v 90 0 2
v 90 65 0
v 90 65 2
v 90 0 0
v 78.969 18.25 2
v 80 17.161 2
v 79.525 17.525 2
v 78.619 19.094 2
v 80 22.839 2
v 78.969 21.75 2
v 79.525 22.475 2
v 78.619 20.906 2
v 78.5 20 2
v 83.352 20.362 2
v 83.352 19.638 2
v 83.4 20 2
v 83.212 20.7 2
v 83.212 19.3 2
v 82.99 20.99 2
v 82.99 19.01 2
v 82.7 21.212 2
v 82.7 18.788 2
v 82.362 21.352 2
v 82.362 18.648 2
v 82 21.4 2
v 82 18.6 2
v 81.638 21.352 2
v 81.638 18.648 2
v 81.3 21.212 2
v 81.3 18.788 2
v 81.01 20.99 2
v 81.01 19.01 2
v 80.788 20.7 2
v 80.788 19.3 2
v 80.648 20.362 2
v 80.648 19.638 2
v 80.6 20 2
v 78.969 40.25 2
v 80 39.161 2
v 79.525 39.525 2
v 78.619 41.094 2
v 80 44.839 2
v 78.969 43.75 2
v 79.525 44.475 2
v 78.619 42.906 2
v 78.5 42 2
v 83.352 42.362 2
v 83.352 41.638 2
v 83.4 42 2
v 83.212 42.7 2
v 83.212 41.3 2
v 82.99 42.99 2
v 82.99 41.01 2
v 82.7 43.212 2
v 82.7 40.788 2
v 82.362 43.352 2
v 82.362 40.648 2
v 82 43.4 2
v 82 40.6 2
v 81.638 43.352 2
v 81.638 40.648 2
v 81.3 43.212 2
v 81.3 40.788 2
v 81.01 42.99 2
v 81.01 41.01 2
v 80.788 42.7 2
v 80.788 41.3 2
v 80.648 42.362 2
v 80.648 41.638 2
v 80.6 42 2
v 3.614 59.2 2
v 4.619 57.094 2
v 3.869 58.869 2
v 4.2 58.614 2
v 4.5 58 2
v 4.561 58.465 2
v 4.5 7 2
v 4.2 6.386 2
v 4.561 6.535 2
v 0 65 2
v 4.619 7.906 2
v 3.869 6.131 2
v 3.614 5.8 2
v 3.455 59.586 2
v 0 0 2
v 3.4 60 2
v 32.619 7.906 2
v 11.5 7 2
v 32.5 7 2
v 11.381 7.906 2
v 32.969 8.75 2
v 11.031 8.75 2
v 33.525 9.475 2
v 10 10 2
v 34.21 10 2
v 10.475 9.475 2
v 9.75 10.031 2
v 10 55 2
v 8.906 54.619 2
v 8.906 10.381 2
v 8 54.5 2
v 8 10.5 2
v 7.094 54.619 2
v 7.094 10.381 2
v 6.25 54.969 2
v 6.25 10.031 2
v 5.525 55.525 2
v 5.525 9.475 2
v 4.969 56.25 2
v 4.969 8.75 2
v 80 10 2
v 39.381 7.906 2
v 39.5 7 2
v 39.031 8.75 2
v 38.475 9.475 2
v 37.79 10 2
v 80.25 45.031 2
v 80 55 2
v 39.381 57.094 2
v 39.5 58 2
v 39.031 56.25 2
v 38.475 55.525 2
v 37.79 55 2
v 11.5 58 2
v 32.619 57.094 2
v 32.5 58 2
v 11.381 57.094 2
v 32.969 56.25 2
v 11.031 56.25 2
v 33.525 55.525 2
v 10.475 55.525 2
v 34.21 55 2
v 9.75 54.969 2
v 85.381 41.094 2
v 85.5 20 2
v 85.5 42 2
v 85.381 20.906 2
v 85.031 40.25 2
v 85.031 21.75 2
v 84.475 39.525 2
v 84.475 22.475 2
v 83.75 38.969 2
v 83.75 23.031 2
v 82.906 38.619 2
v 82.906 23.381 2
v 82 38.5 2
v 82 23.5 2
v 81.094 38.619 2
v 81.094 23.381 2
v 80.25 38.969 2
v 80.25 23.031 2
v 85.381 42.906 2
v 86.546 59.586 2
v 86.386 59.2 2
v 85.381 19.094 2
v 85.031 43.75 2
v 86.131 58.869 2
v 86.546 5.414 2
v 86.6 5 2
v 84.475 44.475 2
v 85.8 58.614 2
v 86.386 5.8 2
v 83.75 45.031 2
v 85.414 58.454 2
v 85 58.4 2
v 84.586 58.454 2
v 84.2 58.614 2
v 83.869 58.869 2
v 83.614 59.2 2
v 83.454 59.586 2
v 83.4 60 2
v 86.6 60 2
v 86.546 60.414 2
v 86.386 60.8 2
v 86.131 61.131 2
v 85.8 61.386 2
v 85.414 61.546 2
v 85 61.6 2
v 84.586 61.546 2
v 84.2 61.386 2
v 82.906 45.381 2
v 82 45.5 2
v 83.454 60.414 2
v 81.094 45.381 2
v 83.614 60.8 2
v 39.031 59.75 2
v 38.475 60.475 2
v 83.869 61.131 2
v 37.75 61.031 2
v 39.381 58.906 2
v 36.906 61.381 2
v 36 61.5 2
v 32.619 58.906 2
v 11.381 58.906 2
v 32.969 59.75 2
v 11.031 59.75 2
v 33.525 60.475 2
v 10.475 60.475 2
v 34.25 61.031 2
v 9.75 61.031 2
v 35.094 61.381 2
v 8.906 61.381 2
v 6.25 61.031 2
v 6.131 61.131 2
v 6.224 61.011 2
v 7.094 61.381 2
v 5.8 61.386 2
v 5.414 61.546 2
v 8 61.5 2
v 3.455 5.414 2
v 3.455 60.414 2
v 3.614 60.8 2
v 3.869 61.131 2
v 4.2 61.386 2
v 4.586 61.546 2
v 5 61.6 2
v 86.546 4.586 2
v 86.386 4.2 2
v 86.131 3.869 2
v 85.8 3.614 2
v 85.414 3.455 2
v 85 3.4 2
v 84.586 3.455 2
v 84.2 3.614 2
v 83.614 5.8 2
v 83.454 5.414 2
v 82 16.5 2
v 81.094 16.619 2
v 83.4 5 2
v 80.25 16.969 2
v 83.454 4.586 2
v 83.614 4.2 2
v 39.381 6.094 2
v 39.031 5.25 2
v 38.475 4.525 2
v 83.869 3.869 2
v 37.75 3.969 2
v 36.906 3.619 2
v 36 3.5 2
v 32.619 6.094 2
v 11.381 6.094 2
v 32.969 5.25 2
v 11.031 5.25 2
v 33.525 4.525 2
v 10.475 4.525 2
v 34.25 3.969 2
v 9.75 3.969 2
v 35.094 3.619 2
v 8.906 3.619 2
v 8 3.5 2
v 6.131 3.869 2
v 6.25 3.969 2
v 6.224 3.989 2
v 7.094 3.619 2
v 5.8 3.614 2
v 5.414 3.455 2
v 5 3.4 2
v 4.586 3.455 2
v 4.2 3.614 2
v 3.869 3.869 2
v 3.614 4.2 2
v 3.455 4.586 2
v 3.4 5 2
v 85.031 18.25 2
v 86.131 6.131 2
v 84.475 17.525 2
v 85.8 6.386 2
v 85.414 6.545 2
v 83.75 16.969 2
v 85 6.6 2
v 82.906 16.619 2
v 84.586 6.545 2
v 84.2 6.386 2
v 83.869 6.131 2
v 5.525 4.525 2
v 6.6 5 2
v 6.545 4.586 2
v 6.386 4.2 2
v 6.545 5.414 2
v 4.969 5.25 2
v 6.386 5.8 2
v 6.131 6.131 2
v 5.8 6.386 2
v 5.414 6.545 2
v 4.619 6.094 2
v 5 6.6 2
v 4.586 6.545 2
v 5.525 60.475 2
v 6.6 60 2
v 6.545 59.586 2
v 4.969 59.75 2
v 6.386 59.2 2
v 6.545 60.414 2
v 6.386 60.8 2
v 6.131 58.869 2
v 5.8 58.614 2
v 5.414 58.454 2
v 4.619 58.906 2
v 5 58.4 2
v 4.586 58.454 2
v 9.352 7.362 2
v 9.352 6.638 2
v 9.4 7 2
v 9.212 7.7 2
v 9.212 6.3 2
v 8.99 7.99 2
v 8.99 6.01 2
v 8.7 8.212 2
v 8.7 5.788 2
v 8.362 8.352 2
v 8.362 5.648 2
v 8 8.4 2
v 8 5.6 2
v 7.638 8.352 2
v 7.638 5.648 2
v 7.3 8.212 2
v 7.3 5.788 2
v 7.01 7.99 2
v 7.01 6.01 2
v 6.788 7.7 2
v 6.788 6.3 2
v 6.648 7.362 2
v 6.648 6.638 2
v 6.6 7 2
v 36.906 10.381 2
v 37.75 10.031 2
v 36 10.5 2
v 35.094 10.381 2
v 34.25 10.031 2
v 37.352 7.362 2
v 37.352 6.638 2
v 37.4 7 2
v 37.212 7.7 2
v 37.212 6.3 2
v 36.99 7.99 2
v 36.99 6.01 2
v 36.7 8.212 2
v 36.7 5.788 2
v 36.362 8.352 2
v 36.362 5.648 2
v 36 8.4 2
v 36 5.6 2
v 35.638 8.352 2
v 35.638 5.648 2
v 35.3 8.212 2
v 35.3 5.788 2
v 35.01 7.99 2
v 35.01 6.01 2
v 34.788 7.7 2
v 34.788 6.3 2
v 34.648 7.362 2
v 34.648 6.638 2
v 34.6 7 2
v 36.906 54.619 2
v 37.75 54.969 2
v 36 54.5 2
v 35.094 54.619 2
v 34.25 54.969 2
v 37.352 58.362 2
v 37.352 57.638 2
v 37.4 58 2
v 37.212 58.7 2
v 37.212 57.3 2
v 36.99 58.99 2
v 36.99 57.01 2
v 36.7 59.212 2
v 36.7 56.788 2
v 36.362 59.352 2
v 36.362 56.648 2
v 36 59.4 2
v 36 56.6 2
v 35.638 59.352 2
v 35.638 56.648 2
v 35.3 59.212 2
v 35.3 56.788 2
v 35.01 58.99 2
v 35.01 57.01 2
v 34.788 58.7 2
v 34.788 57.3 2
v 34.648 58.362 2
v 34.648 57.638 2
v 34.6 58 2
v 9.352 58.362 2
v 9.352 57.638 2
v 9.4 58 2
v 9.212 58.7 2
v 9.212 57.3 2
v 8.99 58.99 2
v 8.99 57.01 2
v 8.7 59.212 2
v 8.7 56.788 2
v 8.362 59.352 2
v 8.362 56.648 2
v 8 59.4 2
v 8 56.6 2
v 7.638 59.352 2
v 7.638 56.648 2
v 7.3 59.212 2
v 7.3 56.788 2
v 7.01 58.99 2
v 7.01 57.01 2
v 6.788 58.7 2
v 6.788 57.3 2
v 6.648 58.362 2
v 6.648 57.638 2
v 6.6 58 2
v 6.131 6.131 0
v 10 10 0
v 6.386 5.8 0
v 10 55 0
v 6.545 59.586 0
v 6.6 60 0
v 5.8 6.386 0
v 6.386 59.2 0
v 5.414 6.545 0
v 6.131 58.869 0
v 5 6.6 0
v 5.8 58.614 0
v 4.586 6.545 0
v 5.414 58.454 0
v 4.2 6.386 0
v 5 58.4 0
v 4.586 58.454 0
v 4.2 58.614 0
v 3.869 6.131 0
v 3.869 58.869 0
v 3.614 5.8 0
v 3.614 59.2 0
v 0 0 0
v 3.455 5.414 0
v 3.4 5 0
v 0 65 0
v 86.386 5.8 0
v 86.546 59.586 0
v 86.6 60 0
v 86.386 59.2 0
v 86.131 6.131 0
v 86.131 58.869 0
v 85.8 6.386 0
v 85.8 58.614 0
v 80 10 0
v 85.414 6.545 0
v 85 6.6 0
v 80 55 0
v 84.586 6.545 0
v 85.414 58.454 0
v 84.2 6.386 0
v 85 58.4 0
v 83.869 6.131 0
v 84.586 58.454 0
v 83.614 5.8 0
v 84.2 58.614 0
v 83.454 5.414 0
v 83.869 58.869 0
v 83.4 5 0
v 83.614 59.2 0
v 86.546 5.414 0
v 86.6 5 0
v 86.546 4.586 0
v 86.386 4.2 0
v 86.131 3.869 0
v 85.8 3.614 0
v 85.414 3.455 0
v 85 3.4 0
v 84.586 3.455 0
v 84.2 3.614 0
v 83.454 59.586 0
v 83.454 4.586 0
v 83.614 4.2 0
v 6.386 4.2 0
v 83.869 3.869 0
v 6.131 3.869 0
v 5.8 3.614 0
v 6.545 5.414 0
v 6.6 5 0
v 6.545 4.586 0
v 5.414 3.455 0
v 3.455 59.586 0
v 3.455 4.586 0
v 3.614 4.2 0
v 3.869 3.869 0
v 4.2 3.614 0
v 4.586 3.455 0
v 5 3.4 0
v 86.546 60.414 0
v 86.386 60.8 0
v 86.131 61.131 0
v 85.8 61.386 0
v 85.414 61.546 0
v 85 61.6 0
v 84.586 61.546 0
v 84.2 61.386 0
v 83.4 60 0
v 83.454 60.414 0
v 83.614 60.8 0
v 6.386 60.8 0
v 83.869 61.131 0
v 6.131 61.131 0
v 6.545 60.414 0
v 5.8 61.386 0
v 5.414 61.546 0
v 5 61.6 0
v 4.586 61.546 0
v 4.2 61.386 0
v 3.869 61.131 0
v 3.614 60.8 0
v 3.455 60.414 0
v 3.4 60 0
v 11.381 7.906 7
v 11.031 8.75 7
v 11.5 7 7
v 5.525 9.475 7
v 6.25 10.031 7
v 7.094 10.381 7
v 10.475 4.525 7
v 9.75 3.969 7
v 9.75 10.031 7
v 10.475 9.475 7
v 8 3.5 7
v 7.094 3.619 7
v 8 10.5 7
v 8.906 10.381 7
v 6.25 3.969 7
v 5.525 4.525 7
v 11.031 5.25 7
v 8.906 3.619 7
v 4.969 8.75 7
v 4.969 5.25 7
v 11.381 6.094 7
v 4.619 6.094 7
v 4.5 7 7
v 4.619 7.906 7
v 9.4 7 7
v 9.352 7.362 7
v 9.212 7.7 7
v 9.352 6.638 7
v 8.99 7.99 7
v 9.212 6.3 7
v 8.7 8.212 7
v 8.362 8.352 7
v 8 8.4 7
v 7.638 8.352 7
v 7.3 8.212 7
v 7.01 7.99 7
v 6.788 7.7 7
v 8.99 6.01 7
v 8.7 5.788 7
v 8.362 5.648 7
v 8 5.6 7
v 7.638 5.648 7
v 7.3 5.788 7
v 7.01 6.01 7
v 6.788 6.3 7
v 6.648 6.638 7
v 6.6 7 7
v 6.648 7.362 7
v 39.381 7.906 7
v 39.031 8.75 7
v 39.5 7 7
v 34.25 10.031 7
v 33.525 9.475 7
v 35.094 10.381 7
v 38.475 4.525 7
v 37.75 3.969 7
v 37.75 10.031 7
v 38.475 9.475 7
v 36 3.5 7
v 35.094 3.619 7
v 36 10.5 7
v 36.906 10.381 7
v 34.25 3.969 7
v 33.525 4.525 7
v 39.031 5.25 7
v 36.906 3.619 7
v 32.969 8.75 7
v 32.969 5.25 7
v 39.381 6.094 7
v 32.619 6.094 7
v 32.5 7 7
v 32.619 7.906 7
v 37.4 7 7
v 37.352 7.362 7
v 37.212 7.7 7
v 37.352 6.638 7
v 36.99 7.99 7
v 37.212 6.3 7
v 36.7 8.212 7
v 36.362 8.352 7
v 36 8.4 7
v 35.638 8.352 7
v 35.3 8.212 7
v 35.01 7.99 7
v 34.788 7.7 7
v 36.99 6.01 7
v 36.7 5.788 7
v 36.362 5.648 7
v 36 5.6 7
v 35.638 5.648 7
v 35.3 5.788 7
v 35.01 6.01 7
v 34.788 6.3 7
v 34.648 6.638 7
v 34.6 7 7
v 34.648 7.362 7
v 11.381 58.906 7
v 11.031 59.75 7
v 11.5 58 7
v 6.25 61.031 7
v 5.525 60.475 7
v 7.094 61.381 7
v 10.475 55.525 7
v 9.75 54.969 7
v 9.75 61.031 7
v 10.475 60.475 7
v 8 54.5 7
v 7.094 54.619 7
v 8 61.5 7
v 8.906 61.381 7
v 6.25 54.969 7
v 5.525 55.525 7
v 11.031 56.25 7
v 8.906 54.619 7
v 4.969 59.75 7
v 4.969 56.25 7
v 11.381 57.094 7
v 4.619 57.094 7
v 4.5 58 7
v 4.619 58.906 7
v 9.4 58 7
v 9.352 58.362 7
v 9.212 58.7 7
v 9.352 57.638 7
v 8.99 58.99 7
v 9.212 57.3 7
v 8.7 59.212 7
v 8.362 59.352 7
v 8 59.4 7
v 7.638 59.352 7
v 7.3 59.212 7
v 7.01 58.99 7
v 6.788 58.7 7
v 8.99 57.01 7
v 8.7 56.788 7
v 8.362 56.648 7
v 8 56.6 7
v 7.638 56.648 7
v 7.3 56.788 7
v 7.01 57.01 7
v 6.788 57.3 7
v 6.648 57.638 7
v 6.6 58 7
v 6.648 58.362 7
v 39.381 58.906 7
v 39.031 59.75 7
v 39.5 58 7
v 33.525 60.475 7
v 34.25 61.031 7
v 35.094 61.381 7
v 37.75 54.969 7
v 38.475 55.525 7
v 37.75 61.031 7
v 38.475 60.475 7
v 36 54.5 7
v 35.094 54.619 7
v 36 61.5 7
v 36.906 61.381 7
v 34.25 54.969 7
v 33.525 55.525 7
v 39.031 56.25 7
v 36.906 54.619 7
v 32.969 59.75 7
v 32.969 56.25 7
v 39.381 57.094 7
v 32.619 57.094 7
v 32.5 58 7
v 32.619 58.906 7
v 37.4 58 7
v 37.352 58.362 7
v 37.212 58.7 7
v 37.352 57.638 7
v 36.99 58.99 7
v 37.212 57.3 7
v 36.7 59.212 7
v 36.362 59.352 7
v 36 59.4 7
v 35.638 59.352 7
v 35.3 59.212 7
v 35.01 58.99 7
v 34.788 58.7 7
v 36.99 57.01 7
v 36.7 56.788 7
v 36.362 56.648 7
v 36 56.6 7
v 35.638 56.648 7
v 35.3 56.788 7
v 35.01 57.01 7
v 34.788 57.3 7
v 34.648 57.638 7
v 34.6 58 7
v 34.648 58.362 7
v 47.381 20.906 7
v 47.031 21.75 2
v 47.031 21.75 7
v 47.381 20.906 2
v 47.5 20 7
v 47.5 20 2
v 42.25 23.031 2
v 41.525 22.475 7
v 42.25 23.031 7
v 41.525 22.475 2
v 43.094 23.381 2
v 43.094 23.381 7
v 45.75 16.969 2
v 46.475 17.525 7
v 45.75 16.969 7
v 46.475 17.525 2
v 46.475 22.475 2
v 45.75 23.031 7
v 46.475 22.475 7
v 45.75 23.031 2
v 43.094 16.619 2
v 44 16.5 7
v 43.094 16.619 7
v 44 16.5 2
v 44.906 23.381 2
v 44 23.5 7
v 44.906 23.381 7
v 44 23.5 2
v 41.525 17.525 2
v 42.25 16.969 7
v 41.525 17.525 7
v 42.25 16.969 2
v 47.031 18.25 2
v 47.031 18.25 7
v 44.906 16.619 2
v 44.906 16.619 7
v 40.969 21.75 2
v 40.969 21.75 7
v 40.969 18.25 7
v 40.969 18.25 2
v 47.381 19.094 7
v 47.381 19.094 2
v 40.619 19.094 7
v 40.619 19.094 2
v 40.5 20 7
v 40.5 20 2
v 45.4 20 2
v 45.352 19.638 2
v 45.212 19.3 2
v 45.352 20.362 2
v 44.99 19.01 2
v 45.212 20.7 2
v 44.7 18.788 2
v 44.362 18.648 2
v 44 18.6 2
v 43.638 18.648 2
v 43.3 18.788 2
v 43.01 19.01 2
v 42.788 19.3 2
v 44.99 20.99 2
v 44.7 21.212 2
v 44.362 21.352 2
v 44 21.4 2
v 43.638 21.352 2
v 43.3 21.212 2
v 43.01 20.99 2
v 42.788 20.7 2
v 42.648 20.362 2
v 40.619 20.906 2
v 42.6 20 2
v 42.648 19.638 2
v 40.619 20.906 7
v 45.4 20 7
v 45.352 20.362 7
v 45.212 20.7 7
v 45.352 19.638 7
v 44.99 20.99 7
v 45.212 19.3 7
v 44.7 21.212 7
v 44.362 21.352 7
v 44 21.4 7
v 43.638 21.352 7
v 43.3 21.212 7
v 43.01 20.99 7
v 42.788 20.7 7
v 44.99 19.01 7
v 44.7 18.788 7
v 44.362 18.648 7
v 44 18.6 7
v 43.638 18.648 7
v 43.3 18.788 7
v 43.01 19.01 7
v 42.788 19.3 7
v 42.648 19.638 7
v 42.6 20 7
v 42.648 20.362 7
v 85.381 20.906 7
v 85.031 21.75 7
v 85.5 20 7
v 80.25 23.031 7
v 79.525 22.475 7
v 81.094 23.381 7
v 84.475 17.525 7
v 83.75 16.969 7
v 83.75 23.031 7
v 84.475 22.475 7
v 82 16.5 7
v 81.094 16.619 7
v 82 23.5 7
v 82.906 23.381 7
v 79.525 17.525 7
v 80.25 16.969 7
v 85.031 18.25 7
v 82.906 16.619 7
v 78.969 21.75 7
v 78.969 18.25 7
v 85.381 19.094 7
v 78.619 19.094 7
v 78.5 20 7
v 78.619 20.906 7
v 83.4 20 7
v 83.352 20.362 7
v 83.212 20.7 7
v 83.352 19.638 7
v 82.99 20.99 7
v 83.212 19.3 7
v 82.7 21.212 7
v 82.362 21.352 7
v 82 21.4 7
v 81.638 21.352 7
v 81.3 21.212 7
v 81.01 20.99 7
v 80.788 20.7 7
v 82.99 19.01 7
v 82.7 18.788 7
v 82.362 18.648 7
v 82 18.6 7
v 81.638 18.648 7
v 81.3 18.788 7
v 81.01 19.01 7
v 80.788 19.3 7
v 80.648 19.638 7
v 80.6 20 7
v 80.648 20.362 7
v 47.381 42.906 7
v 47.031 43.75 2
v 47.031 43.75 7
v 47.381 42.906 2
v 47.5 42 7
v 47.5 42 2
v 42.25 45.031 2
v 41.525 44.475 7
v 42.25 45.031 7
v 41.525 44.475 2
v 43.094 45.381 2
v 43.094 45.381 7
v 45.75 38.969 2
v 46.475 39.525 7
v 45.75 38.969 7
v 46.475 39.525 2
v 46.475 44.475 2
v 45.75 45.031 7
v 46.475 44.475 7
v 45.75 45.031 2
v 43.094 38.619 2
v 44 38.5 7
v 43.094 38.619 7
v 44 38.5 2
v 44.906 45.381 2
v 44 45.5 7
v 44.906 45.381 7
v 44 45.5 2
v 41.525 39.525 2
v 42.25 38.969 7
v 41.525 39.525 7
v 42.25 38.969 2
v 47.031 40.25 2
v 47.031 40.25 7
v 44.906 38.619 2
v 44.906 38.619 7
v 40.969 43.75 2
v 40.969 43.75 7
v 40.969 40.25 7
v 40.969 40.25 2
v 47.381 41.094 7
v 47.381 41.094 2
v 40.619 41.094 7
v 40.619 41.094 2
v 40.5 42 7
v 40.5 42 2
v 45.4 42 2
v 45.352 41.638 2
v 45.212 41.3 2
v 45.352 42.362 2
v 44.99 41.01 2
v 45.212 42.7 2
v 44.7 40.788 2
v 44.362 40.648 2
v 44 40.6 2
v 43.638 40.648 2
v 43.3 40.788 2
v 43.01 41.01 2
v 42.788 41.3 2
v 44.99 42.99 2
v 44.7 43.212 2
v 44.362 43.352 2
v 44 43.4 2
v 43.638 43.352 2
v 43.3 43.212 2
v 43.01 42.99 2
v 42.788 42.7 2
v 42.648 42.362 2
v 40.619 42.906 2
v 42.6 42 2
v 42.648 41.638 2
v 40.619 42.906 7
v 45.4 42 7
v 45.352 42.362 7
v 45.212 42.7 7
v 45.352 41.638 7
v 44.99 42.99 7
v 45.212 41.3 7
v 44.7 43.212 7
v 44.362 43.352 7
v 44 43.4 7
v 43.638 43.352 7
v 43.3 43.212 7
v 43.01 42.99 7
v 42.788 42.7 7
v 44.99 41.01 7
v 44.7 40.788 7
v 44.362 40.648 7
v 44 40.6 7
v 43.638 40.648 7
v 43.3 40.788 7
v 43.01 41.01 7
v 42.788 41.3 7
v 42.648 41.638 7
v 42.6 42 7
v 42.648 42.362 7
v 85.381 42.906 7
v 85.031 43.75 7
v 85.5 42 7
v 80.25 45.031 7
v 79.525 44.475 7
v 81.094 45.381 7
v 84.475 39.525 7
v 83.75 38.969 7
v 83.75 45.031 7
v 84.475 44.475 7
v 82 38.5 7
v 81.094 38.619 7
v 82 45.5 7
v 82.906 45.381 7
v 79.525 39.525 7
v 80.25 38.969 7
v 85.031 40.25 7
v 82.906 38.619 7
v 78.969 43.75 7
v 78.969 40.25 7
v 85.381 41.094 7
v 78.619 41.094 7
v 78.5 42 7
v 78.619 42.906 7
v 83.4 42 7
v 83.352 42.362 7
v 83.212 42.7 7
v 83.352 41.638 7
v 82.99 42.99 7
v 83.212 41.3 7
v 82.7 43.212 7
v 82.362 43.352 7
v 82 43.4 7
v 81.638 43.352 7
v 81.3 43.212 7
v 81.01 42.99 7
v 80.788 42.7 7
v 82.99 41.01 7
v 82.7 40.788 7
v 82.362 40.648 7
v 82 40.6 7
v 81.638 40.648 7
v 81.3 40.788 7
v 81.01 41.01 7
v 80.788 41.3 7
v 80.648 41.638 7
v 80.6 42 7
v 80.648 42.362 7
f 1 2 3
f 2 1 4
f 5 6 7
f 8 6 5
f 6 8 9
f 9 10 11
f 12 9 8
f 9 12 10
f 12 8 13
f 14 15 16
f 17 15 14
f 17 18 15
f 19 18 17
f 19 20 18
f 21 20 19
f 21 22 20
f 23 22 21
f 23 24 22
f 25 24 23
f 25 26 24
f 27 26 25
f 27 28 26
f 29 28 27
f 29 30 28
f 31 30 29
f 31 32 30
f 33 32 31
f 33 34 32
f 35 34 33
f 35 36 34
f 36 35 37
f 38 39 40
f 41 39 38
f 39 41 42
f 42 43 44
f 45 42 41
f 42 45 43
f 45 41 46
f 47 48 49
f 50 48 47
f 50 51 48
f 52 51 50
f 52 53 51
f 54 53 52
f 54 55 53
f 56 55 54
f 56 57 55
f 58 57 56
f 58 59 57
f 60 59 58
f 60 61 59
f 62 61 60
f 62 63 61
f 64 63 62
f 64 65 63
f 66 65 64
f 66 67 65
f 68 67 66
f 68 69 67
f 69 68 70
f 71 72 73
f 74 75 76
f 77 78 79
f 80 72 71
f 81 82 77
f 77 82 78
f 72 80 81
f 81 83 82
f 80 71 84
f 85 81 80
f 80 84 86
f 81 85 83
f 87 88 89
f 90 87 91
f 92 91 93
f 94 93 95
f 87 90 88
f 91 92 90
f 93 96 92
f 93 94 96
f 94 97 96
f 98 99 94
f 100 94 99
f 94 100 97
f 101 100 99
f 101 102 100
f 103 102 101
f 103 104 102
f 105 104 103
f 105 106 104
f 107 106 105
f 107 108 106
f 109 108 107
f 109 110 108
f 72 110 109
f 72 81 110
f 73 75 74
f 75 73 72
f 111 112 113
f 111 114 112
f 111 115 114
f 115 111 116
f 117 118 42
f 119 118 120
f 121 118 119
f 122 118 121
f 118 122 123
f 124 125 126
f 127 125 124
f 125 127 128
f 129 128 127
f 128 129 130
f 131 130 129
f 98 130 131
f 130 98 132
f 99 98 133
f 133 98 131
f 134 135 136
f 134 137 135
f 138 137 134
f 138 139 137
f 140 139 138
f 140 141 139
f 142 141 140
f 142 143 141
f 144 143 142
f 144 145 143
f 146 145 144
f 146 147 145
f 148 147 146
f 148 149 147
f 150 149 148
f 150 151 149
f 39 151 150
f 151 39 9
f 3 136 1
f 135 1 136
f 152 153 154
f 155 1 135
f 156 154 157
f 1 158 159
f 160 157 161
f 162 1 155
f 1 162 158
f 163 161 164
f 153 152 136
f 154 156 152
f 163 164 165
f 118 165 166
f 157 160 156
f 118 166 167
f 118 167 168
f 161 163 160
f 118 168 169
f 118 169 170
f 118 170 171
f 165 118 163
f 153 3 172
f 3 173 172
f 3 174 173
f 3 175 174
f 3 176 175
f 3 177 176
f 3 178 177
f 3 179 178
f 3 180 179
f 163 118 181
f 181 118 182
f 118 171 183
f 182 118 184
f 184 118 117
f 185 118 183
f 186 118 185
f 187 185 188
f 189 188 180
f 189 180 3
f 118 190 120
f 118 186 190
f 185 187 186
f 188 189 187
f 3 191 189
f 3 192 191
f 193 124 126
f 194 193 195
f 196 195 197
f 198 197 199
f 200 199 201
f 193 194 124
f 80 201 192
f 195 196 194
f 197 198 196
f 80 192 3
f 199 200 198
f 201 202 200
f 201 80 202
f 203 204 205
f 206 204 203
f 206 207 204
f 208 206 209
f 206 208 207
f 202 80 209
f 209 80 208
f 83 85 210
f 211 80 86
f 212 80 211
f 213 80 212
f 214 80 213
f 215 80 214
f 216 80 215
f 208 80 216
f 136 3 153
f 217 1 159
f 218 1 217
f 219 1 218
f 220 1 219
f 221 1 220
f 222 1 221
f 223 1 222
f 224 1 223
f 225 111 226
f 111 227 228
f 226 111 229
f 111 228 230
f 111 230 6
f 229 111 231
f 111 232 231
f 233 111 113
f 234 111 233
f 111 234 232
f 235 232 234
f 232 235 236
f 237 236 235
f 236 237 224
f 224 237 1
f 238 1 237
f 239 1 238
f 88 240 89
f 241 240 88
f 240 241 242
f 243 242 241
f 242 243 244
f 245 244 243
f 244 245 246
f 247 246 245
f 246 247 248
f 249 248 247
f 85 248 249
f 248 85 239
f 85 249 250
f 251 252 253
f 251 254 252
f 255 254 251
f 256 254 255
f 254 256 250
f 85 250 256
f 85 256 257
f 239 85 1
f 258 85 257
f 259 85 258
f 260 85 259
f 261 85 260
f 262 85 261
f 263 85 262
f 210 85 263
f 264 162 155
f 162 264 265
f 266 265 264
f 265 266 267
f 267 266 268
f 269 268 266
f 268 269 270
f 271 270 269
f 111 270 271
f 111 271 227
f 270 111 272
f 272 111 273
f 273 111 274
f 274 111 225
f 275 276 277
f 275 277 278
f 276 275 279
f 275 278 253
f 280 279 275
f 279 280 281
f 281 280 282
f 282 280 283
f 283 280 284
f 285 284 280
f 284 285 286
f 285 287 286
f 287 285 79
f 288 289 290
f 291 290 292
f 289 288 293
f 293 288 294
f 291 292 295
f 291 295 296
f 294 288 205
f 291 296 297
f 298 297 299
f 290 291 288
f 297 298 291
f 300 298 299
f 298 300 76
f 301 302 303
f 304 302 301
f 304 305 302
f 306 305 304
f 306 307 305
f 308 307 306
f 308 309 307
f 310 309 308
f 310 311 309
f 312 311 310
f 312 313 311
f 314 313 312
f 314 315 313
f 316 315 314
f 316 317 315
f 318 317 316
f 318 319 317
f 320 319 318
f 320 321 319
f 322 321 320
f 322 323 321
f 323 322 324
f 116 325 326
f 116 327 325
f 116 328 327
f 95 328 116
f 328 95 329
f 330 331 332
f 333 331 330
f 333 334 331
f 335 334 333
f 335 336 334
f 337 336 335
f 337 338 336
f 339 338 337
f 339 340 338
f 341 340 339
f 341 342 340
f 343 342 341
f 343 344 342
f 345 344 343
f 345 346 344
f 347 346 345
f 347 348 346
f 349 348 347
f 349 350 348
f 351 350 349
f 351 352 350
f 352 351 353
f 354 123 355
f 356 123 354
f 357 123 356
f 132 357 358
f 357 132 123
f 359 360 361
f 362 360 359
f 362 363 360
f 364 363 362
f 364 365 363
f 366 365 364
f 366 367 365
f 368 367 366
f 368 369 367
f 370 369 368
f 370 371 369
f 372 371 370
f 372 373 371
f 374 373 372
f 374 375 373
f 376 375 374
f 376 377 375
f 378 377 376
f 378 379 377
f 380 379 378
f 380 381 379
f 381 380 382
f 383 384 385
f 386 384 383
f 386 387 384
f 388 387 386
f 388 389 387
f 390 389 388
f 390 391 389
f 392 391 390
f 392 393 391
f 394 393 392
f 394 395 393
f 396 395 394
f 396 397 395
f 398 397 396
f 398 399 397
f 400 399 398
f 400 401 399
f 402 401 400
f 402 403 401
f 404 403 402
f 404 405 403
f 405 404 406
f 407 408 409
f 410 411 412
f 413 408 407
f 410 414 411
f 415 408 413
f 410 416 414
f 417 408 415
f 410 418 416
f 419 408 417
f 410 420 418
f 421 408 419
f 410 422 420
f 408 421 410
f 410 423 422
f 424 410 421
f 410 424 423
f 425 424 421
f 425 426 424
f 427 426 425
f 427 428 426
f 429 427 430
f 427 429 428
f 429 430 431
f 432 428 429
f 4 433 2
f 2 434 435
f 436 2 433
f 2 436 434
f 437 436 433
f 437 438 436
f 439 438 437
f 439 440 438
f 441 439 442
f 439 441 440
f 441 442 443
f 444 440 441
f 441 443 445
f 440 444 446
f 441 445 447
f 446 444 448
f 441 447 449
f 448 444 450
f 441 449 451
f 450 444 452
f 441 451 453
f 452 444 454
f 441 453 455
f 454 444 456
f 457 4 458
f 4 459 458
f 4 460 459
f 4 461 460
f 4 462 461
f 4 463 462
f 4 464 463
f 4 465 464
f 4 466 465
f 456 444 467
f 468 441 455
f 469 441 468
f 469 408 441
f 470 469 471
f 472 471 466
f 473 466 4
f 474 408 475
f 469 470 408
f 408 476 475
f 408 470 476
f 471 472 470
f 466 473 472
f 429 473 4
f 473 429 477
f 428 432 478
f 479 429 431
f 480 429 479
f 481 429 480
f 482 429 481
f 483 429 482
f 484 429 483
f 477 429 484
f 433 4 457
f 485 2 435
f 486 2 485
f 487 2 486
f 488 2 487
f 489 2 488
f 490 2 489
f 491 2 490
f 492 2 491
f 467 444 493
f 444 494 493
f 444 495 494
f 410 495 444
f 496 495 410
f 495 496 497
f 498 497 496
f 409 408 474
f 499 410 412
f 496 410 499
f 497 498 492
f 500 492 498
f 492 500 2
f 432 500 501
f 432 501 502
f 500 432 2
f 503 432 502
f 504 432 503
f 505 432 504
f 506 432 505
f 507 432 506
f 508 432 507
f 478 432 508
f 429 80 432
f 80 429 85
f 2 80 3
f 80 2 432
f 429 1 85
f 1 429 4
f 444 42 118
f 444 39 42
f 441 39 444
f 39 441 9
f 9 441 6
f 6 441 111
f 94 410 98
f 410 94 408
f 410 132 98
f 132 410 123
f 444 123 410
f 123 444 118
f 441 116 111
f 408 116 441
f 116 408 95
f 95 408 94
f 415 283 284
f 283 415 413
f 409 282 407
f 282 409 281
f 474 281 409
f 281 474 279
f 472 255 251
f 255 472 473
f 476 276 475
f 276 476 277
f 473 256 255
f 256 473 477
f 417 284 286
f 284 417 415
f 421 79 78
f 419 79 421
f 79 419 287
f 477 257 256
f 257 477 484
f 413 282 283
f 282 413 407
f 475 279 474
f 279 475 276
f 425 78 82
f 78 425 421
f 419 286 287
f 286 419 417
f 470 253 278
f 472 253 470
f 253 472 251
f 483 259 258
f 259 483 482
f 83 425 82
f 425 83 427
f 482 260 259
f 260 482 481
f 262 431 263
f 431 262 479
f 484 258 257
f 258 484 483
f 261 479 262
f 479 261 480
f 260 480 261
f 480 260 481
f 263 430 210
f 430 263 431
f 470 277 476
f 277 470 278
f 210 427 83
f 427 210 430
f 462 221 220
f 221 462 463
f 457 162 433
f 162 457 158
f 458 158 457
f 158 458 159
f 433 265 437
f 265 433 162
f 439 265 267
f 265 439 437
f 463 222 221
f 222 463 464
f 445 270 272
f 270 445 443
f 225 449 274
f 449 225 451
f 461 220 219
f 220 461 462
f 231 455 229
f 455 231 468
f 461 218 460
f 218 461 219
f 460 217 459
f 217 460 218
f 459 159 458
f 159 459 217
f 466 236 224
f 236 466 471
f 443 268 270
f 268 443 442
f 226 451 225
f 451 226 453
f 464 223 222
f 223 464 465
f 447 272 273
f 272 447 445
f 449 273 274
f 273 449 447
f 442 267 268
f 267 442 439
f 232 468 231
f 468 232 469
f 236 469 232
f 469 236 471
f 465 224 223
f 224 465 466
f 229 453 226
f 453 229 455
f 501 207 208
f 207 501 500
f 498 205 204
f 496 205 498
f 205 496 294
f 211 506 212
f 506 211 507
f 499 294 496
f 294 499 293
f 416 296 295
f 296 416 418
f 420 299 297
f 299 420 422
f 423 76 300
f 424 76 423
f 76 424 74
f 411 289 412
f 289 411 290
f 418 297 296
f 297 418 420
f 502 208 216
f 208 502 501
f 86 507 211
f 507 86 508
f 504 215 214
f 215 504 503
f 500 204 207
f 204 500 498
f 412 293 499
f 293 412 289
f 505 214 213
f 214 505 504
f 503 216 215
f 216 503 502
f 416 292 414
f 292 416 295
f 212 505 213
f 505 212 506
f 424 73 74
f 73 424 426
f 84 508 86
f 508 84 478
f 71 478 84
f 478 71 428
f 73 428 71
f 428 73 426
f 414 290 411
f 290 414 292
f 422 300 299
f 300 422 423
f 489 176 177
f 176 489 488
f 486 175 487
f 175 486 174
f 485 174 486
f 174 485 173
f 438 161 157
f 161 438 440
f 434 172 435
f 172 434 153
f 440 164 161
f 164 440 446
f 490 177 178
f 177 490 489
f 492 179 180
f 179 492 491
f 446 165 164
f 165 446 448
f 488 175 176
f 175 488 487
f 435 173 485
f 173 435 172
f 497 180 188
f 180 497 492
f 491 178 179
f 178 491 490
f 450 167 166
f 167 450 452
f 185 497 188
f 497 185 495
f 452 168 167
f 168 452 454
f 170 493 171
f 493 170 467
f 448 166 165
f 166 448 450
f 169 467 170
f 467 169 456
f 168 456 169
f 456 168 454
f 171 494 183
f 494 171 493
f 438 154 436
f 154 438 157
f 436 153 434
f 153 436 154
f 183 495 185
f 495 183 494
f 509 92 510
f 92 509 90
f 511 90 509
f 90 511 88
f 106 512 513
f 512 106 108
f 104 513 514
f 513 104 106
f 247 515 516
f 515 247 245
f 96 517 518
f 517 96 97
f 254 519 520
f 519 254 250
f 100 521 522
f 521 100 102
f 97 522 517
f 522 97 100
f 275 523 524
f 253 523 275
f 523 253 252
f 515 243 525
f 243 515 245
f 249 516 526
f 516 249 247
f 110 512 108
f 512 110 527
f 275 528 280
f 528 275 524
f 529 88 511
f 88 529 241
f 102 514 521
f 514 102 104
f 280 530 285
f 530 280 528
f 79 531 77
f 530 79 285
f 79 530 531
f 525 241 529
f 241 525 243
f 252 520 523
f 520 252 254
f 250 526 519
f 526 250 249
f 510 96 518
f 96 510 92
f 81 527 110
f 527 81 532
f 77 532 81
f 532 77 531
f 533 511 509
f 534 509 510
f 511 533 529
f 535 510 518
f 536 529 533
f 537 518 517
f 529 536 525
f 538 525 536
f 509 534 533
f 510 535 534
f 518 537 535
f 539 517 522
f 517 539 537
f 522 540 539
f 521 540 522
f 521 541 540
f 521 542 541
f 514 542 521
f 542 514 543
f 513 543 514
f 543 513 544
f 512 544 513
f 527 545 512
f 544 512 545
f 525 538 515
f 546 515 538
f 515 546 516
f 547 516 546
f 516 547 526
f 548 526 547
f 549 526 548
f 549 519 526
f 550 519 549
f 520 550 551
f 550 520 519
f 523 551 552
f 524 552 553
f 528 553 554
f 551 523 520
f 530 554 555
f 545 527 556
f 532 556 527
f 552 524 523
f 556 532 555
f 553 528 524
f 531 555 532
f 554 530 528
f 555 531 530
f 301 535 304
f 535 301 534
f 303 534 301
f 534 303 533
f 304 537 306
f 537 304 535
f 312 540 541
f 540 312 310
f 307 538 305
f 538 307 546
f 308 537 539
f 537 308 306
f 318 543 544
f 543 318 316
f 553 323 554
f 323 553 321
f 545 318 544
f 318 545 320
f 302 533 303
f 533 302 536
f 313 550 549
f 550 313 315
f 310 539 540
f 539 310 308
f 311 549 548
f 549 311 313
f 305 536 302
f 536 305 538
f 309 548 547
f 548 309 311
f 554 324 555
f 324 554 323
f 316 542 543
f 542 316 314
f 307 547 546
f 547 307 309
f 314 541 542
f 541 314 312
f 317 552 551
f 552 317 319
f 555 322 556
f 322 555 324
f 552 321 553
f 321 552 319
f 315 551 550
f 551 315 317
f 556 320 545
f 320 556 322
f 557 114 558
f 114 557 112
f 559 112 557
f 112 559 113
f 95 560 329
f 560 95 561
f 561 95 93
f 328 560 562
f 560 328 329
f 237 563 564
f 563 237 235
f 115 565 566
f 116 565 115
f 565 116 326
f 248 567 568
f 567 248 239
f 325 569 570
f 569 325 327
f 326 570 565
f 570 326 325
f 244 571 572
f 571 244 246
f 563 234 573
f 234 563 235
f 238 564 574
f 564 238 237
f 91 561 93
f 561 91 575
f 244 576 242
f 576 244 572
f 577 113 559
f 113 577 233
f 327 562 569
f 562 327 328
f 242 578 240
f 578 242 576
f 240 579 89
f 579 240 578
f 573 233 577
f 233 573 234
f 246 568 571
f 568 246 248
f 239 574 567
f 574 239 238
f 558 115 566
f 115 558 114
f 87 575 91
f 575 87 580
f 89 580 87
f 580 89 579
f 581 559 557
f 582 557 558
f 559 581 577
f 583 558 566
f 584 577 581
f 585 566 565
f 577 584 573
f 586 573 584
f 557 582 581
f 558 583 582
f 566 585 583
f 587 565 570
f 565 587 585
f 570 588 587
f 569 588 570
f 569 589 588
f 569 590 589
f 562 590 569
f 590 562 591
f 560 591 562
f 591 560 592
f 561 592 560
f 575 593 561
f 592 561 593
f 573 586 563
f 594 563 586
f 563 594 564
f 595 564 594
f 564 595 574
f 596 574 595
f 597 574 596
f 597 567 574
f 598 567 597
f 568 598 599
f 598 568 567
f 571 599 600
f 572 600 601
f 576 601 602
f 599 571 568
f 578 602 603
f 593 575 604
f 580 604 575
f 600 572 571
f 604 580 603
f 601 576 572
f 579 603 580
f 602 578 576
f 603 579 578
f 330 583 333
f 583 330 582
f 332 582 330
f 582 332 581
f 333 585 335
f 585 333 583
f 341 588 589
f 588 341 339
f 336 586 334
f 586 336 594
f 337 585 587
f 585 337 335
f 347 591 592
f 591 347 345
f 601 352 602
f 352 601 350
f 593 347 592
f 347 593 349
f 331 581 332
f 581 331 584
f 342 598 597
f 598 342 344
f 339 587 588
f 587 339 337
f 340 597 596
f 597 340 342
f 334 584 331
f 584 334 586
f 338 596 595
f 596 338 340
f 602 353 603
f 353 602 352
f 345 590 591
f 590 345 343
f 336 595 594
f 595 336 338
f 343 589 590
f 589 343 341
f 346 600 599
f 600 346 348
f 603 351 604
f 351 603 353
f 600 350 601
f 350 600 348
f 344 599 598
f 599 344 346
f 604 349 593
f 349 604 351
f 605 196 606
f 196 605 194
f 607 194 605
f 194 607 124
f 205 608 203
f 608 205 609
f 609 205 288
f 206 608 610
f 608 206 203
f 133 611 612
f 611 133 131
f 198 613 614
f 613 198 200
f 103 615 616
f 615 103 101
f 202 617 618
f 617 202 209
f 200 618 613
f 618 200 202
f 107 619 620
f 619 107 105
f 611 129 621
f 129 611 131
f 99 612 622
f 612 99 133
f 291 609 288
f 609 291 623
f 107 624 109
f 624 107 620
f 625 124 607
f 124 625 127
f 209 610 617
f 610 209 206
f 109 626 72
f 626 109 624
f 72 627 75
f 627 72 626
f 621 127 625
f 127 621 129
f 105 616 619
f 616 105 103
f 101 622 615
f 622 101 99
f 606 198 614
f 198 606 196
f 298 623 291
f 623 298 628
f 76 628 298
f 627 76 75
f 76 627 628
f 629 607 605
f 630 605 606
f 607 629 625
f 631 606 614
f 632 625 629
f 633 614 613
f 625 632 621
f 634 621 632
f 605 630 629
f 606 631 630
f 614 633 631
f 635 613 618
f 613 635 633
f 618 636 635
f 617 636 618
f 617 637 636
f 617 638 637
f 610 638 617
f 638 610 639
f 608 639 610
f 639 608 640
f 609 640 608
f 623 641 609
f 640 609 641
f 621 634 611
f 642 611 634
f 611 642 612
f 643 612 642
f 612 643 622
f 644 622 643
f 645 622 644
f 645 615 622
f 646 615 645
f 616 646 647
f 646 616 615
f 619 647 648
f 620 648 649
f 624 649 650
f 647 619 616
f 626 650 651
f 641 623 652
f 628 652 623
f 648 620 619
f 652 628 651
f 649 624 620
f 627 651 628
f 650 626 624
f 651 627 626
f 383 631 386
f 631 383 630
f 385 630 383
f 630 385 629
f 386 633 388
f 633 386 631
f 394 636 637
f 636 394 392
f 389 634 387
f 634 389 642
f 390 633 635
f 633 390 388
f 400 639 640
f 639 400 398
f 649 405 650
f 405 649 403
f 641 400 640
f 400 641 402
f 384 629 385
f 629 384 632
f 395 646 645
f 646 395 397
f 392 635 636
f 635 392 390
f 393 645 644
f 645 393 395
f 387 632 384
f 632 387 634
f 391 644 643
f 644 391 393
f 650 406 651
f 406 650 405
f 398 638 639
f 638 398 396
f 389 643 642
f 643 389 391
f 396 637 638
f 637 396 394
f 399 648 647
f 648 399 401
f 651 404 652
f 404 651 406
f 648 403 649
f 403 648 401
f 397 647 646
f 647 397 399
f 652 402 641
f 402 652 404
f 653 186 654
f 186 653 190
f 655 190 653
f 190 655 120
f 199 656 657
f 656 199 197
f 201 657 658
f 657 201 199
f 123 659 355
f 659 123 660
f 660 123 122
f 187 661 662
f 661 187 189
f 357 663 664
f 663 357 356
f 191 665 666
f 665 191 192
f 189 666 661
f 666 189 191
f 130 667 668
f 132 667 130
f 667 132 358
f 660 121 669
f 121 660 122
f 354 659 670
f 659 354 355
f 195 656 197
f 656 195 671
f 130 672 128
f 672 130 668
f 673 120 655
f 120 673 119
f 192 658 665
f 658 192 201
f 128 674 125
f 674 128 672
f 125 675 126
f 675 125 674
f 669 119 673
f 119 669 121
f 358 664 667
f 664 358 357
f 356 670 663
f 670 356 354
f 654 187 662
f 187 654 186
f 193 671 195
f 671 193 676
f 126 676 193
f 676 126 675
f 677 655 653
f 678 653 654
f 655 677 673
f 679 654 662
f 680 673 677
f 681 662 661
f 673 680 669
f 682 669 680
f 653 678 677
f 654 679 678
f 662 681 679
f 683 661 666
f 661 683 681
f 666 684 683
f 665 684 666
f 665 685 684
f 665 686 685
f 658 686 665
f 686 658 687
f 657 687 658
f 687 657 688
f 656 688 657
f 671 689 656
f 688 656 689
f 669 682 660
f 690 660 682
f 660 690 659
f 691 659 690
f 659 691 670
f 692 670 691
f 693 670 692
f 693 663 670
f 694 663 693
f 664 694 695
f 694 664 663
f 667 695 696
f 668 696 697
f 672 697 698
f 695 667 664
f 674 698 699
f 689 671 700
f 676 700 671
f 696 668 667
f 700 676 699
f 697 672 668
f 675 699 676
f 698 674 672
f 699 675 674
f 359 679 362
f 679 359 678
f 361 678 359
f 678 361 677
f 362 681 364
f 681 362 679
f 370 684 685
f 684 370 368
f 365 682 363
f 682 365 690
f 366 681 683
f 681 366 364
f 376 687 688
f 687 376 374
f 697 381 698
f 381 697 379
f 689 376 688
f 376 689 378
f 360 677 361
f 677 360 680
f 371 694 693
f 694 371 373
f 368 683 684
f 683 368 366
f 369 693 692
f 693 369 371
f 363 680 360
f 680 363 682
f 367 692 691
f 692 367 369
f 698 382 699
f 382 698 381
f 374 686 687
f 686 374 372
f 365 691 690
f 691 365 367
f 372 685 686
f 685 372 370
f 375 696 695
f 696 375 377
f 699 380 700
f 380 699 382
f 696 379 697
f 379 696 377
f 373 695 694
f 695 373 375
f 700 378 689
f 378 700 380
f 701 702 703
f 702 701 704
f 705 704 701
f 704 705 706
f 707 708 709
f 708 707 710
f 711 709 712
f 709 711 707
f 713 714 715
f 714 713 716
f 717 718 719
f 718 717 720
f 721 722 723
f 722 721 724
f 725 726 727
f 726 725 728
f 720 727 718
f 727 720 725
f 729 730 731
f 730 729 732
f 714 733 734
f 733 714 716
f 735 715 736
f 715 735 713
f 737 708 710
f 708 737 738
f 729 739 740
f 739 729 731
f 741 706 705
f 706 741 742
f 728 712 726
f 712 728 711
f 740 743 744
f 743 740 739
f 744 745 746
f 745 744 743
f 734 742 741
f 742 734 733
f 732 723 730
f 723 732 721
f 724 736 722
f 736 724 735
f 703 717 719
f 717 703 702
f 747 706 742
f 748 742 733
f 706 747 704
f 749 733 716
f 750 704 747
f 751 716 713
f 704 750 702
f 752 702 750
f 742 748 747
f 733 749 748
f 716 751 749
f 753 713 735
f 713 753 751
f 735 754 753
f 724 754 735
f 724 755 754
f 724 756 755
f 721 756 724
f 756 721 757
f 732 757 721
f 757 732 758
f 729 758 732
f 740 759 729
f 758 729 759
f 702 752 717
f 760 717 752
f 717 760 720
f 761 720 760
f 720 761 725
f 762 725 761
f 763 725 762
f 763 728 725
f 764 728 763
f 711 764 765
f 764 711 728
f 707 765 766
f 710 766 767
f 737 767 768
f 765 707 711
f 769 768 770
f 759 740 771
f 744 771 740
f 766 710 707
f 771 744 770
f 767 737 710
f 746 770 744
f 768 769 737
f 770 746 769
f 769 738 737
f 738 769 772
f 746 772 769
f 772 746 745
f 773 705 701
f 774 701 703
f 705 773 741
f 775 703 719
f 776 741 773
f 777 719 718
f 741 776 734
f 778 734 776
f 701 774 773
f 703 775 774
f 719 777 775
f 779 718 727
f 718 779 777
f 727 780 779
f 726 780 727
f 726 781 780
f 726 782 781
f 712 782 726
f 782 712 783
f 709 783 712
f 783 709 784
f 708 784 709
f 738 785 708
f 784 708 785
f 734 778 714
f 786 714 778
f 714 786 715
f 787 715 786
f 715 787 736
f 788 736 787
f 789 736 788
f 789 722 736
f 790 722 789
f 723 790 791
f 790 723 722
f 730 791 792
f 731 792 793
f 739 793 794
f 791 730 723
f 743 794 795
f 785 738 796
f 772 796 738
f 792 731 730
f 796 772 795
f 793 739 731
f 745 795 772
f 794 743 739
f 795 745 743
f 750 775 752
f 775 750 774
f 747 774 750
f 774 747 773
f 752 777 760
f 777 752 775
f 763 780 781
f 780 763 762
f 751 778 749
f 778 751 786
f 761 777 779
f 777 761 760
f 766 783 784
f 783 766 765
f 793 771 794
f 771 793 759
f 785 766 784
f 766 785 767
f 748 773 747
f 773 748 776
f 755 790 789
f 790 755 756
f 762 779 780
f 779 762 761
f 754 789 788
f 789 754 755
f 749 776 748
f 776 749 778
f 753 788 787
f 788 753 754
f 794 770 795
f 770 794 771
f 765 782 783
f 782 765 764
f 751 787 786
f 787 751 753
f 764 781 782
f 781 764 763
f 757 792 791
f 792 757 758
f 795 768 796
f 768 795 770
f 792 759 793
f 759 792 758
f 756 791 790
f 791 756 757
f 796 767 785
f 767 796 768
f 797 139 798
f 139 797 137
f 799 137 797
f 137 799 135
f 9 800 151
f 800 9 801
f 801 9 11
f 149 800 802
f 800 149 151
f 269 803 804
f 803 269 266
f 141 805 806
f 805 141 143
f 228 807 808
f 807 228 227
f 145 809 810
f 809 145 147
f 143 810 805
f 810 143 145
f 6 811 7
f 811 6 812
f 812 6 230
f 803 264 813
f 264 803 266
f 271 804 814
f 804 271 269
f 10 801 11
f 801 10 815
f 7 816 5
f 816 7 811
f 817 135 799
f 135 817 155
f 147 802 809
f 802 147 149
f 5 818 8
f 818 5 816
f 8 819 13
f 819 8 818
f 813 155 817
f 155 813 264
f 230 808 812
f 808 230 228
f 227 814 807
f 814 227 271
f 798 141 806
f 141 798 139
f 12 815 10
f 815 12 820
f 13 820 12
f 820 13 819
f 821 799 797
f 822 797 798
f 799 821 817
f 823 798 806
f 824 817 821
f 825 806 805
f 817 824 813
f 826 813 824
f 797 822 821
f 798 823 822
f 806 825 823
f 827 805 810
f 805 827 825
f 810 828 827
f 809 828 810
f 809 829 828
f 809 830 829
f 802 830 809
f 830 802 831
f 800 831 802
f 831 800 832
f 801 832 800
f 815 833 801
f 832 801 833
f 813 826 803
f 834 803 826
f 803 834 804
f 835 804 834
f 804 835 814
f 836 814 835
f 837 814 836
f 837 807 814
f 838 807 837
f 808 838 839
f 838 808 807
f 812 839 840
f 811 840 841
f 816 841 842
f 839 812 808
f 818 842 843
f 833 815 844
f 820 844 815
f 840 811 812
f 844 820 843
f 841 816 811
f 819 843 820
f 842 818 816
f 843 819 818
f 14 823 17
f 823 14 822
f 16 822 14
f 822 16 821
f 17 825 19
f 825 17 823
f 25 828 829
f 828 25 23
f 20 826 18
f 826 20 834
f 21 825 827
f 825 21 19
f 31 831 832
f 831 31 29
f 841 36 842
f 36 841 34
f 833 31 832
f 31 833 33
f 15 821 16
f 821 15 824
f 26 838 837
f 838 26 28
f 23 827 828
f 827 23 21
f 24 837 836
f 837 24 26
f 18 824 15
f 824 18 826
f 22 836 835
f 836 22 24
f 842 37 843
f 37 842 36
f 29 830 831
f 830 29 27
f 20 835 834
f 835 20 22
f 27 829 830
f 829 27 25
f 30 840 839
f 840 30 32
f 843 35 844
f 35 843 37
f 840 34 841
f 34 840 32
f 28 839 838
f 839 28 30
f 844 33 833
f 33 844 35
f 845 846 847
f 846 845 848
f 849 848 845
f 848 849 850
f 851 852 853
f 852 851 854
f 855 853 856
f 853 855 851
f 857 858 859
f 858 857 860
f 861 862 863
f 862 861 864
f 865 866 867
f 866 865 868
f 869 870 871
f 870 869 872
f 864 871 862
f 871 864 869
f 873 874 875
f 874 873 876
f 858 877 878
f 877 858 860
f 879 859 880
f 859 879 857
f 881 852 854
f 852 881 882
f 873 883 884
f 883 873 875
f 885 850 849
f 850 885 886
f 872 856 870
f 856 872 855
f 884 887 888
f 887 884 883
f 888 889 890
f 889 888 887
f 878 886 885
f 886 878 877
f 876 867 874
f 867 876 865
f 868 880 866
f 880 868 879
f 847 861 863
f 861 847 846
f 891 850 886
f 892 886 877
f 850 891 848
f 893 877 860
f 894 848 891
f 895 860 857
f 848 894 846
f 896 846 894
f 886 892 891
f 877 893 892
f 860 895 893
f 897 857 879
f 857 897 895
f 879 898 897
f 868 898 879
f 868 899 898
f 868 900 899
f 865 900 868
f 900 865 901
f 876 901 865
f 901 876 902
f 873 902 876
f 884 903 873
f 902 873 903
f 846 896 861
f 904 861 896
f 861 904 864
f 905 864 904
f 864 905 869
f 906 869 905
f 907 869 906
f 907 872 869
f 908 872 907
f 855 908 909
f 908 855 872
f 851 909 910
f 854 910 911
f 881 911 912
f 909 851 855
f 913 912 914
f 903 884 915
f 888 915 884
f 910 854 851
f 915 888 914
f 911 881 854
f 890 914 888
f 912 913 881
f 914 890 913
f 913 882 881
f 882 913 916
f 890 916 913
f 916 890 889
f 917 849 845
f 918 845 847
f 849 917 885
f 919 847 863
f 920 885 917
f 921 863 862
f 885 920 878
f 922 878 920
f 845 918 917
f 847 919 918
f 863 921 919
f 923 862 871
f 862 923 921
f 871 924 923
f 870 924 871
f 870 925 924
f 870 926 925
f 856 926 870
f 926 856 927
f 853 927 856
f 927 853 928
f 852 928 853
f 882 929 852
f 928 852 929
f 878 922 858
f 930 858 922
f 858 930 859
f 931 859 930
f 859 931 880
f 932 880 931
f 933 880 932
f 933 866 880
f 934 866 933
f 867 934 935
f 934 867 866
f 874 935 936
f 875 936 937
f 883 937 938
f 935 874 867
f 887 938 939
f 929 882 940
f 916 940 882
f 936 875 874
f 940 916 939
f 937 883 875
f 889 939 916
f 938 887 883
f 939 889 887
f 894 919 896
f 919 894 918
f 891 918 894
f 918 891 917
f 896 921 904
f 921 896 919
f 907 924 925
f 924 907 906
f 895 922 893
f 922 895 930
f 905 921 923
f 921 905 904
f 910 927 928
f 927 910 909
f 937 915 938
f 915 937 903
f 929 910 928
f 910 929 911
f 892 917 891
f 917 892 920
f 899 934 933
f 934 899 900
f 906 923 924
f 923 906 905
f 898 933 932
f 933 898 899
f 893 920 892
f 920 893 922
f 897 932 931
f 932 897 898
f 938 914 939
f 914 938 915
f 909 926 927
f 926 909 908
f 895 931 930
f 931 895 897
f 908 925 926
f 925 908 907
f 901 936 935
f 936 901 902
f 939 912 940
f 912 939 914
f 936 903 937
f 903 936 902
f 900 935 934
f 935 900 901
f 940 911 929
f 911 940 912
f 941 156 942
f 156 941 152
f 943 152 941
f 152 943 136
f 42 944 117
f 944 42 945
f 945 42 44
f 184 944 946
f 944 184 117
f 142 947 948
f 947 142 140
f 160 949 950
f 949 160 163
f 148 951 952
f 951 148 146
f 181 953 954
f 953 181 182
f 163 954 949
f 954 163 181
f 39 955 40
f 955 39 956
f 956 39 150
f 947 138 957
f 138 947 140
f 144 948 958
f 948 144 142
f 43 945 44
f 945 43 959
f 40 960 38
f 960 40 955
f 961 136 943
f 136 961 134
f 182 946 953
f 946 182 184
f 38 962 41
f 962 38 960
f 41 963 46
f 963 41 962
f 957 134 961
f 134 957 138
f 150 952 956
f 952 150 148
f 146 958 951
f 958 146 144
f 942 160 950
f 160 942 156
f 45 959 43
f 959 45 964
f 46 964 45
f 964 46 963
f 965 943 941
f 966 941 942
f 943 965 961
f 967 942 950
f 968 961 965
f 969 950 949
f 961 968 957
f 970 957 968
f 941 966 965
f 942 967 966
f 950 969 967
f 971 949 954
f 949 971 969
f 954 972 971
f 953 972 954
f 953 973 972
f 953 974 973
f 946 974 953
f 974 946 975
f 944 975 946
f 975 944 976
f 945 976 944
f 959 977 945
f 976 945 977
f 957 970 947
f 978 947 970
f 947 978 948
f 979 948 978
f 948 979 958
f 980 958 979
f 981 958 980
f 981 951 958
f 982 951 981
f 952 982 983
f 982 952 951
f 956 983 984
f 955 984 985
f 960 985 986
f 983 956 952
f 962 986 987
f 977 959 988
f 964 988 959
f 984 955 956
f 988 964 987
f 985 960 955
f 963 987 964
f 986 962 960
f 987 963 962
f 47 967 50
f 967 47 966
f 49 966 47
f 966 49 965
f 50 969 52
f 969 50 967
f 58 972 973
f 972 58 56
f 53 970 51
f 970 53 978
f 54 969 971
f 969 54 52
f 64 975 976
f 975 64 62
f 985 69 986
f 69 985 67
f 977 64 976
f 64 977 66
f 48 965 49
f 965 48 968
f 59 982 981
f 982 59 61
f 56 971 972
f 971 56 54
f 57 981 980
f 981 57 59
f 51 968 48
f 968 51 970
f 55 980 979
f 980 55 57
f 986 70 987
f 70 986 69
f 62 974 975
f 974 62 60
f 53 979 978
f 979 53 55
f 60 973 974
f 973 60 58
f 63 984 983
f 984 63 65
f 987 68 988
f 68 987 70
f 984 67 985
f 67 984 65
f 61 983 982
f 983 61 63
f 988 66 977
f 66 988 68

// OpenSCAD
// ==============================================================================
// WORDCLOCK ESP32 - PIEZA INDEPENDIENTE: SOPORTE DE ELECTRÓNICA (ESP32 + RTC)
// Parametric OpenSCAD Model for Bambu Lab (256x256 mm build plate)
// Print flat on bed without any supports. Attach to rear lid or inner frame.
// ==============================================================================

tray_w     = 90.0;  // Ancho de la bandeja (mm)
tray_h     = 65.0;  // Alto de la bandeja (mm)
tray_thick = 2.0;   // Grosor base (mm)
standoff_h = 5.0;   // Altura de torretas M3 (mm)

module m3_boss(h = 5.0) {
    difference() {
        cylinder(r = 3.5, h = h, $fn = 24);
        translate([0, 0, -0.1]) cylinder(r = 1.4, h = h + 0.2, $fn = 24);
    }
}

module wordclock_electronics_mount() {
    union() {
        difference() {
            // Base Plana de la Bandeja
            cube([tray_w, tray_h, tray_thick]);

            // Aligerado de peso central
            translate([10, 10, -0.1]) {
                cube([tray_w - 20, tray_h - 20, tray_thick + 0.2]);
            }

            // 4 Orificios M3 en las esquinas para atornillar/pegar la bandeja
            translate([5, 5, -0.1])           cylinder(r = 1.6, h = tray_thick + 0.2, $fn = 24);
            translate([tray_w - 5, 5, -0.1])   cylinder(r = 1.6, h = tray_thick + 0.2, $fn = 24);
            translate([5, tray_h - 5, -0.1])  cylinder(r = 1.6, h = tray_thick + 0.2, $fn = 24);
            translate([tray_w - 5, tray_h - 5, -0.1]) cylinder(r = 1.6, h = tray_thick + 0.2, $fn = 24);
        }

        // 1. Torretas M3 para ESP32 DevKit (30 pines: ~28 x 51 mm)
        esp32_x = 8;
        esp32_y = 7;
        translate([esp32_x, esp32_y, tray_thick]) {
            m3_boss(standoff_h);
            translate([28, 0, 0])  m3_boss(standoff_h);
            translate([0, 51, 0])  m3_boss(standoff_h);
            translate([28, 51, 0]) m3_boss(standoff_h);
        }

        // 2. Torretas M3 para Módulo RTC DS3231 (~38 x 22 mm)
        rtc_x = 44;
        rtc_y = 20;
        translate([rtc_x, rtc_y, tray_thick]) {
            m3_boss(standoff_h);
            translate([38, 0, 0])  m3_boss(standoff_h);
            translate([0, 22, 0])  m3_boss(standoff_h);
            translate([38, 22, 0]) m3_boss(standoff_h);
        }
    }
}

// Generar modelo
wordclock_electronics_mount();
